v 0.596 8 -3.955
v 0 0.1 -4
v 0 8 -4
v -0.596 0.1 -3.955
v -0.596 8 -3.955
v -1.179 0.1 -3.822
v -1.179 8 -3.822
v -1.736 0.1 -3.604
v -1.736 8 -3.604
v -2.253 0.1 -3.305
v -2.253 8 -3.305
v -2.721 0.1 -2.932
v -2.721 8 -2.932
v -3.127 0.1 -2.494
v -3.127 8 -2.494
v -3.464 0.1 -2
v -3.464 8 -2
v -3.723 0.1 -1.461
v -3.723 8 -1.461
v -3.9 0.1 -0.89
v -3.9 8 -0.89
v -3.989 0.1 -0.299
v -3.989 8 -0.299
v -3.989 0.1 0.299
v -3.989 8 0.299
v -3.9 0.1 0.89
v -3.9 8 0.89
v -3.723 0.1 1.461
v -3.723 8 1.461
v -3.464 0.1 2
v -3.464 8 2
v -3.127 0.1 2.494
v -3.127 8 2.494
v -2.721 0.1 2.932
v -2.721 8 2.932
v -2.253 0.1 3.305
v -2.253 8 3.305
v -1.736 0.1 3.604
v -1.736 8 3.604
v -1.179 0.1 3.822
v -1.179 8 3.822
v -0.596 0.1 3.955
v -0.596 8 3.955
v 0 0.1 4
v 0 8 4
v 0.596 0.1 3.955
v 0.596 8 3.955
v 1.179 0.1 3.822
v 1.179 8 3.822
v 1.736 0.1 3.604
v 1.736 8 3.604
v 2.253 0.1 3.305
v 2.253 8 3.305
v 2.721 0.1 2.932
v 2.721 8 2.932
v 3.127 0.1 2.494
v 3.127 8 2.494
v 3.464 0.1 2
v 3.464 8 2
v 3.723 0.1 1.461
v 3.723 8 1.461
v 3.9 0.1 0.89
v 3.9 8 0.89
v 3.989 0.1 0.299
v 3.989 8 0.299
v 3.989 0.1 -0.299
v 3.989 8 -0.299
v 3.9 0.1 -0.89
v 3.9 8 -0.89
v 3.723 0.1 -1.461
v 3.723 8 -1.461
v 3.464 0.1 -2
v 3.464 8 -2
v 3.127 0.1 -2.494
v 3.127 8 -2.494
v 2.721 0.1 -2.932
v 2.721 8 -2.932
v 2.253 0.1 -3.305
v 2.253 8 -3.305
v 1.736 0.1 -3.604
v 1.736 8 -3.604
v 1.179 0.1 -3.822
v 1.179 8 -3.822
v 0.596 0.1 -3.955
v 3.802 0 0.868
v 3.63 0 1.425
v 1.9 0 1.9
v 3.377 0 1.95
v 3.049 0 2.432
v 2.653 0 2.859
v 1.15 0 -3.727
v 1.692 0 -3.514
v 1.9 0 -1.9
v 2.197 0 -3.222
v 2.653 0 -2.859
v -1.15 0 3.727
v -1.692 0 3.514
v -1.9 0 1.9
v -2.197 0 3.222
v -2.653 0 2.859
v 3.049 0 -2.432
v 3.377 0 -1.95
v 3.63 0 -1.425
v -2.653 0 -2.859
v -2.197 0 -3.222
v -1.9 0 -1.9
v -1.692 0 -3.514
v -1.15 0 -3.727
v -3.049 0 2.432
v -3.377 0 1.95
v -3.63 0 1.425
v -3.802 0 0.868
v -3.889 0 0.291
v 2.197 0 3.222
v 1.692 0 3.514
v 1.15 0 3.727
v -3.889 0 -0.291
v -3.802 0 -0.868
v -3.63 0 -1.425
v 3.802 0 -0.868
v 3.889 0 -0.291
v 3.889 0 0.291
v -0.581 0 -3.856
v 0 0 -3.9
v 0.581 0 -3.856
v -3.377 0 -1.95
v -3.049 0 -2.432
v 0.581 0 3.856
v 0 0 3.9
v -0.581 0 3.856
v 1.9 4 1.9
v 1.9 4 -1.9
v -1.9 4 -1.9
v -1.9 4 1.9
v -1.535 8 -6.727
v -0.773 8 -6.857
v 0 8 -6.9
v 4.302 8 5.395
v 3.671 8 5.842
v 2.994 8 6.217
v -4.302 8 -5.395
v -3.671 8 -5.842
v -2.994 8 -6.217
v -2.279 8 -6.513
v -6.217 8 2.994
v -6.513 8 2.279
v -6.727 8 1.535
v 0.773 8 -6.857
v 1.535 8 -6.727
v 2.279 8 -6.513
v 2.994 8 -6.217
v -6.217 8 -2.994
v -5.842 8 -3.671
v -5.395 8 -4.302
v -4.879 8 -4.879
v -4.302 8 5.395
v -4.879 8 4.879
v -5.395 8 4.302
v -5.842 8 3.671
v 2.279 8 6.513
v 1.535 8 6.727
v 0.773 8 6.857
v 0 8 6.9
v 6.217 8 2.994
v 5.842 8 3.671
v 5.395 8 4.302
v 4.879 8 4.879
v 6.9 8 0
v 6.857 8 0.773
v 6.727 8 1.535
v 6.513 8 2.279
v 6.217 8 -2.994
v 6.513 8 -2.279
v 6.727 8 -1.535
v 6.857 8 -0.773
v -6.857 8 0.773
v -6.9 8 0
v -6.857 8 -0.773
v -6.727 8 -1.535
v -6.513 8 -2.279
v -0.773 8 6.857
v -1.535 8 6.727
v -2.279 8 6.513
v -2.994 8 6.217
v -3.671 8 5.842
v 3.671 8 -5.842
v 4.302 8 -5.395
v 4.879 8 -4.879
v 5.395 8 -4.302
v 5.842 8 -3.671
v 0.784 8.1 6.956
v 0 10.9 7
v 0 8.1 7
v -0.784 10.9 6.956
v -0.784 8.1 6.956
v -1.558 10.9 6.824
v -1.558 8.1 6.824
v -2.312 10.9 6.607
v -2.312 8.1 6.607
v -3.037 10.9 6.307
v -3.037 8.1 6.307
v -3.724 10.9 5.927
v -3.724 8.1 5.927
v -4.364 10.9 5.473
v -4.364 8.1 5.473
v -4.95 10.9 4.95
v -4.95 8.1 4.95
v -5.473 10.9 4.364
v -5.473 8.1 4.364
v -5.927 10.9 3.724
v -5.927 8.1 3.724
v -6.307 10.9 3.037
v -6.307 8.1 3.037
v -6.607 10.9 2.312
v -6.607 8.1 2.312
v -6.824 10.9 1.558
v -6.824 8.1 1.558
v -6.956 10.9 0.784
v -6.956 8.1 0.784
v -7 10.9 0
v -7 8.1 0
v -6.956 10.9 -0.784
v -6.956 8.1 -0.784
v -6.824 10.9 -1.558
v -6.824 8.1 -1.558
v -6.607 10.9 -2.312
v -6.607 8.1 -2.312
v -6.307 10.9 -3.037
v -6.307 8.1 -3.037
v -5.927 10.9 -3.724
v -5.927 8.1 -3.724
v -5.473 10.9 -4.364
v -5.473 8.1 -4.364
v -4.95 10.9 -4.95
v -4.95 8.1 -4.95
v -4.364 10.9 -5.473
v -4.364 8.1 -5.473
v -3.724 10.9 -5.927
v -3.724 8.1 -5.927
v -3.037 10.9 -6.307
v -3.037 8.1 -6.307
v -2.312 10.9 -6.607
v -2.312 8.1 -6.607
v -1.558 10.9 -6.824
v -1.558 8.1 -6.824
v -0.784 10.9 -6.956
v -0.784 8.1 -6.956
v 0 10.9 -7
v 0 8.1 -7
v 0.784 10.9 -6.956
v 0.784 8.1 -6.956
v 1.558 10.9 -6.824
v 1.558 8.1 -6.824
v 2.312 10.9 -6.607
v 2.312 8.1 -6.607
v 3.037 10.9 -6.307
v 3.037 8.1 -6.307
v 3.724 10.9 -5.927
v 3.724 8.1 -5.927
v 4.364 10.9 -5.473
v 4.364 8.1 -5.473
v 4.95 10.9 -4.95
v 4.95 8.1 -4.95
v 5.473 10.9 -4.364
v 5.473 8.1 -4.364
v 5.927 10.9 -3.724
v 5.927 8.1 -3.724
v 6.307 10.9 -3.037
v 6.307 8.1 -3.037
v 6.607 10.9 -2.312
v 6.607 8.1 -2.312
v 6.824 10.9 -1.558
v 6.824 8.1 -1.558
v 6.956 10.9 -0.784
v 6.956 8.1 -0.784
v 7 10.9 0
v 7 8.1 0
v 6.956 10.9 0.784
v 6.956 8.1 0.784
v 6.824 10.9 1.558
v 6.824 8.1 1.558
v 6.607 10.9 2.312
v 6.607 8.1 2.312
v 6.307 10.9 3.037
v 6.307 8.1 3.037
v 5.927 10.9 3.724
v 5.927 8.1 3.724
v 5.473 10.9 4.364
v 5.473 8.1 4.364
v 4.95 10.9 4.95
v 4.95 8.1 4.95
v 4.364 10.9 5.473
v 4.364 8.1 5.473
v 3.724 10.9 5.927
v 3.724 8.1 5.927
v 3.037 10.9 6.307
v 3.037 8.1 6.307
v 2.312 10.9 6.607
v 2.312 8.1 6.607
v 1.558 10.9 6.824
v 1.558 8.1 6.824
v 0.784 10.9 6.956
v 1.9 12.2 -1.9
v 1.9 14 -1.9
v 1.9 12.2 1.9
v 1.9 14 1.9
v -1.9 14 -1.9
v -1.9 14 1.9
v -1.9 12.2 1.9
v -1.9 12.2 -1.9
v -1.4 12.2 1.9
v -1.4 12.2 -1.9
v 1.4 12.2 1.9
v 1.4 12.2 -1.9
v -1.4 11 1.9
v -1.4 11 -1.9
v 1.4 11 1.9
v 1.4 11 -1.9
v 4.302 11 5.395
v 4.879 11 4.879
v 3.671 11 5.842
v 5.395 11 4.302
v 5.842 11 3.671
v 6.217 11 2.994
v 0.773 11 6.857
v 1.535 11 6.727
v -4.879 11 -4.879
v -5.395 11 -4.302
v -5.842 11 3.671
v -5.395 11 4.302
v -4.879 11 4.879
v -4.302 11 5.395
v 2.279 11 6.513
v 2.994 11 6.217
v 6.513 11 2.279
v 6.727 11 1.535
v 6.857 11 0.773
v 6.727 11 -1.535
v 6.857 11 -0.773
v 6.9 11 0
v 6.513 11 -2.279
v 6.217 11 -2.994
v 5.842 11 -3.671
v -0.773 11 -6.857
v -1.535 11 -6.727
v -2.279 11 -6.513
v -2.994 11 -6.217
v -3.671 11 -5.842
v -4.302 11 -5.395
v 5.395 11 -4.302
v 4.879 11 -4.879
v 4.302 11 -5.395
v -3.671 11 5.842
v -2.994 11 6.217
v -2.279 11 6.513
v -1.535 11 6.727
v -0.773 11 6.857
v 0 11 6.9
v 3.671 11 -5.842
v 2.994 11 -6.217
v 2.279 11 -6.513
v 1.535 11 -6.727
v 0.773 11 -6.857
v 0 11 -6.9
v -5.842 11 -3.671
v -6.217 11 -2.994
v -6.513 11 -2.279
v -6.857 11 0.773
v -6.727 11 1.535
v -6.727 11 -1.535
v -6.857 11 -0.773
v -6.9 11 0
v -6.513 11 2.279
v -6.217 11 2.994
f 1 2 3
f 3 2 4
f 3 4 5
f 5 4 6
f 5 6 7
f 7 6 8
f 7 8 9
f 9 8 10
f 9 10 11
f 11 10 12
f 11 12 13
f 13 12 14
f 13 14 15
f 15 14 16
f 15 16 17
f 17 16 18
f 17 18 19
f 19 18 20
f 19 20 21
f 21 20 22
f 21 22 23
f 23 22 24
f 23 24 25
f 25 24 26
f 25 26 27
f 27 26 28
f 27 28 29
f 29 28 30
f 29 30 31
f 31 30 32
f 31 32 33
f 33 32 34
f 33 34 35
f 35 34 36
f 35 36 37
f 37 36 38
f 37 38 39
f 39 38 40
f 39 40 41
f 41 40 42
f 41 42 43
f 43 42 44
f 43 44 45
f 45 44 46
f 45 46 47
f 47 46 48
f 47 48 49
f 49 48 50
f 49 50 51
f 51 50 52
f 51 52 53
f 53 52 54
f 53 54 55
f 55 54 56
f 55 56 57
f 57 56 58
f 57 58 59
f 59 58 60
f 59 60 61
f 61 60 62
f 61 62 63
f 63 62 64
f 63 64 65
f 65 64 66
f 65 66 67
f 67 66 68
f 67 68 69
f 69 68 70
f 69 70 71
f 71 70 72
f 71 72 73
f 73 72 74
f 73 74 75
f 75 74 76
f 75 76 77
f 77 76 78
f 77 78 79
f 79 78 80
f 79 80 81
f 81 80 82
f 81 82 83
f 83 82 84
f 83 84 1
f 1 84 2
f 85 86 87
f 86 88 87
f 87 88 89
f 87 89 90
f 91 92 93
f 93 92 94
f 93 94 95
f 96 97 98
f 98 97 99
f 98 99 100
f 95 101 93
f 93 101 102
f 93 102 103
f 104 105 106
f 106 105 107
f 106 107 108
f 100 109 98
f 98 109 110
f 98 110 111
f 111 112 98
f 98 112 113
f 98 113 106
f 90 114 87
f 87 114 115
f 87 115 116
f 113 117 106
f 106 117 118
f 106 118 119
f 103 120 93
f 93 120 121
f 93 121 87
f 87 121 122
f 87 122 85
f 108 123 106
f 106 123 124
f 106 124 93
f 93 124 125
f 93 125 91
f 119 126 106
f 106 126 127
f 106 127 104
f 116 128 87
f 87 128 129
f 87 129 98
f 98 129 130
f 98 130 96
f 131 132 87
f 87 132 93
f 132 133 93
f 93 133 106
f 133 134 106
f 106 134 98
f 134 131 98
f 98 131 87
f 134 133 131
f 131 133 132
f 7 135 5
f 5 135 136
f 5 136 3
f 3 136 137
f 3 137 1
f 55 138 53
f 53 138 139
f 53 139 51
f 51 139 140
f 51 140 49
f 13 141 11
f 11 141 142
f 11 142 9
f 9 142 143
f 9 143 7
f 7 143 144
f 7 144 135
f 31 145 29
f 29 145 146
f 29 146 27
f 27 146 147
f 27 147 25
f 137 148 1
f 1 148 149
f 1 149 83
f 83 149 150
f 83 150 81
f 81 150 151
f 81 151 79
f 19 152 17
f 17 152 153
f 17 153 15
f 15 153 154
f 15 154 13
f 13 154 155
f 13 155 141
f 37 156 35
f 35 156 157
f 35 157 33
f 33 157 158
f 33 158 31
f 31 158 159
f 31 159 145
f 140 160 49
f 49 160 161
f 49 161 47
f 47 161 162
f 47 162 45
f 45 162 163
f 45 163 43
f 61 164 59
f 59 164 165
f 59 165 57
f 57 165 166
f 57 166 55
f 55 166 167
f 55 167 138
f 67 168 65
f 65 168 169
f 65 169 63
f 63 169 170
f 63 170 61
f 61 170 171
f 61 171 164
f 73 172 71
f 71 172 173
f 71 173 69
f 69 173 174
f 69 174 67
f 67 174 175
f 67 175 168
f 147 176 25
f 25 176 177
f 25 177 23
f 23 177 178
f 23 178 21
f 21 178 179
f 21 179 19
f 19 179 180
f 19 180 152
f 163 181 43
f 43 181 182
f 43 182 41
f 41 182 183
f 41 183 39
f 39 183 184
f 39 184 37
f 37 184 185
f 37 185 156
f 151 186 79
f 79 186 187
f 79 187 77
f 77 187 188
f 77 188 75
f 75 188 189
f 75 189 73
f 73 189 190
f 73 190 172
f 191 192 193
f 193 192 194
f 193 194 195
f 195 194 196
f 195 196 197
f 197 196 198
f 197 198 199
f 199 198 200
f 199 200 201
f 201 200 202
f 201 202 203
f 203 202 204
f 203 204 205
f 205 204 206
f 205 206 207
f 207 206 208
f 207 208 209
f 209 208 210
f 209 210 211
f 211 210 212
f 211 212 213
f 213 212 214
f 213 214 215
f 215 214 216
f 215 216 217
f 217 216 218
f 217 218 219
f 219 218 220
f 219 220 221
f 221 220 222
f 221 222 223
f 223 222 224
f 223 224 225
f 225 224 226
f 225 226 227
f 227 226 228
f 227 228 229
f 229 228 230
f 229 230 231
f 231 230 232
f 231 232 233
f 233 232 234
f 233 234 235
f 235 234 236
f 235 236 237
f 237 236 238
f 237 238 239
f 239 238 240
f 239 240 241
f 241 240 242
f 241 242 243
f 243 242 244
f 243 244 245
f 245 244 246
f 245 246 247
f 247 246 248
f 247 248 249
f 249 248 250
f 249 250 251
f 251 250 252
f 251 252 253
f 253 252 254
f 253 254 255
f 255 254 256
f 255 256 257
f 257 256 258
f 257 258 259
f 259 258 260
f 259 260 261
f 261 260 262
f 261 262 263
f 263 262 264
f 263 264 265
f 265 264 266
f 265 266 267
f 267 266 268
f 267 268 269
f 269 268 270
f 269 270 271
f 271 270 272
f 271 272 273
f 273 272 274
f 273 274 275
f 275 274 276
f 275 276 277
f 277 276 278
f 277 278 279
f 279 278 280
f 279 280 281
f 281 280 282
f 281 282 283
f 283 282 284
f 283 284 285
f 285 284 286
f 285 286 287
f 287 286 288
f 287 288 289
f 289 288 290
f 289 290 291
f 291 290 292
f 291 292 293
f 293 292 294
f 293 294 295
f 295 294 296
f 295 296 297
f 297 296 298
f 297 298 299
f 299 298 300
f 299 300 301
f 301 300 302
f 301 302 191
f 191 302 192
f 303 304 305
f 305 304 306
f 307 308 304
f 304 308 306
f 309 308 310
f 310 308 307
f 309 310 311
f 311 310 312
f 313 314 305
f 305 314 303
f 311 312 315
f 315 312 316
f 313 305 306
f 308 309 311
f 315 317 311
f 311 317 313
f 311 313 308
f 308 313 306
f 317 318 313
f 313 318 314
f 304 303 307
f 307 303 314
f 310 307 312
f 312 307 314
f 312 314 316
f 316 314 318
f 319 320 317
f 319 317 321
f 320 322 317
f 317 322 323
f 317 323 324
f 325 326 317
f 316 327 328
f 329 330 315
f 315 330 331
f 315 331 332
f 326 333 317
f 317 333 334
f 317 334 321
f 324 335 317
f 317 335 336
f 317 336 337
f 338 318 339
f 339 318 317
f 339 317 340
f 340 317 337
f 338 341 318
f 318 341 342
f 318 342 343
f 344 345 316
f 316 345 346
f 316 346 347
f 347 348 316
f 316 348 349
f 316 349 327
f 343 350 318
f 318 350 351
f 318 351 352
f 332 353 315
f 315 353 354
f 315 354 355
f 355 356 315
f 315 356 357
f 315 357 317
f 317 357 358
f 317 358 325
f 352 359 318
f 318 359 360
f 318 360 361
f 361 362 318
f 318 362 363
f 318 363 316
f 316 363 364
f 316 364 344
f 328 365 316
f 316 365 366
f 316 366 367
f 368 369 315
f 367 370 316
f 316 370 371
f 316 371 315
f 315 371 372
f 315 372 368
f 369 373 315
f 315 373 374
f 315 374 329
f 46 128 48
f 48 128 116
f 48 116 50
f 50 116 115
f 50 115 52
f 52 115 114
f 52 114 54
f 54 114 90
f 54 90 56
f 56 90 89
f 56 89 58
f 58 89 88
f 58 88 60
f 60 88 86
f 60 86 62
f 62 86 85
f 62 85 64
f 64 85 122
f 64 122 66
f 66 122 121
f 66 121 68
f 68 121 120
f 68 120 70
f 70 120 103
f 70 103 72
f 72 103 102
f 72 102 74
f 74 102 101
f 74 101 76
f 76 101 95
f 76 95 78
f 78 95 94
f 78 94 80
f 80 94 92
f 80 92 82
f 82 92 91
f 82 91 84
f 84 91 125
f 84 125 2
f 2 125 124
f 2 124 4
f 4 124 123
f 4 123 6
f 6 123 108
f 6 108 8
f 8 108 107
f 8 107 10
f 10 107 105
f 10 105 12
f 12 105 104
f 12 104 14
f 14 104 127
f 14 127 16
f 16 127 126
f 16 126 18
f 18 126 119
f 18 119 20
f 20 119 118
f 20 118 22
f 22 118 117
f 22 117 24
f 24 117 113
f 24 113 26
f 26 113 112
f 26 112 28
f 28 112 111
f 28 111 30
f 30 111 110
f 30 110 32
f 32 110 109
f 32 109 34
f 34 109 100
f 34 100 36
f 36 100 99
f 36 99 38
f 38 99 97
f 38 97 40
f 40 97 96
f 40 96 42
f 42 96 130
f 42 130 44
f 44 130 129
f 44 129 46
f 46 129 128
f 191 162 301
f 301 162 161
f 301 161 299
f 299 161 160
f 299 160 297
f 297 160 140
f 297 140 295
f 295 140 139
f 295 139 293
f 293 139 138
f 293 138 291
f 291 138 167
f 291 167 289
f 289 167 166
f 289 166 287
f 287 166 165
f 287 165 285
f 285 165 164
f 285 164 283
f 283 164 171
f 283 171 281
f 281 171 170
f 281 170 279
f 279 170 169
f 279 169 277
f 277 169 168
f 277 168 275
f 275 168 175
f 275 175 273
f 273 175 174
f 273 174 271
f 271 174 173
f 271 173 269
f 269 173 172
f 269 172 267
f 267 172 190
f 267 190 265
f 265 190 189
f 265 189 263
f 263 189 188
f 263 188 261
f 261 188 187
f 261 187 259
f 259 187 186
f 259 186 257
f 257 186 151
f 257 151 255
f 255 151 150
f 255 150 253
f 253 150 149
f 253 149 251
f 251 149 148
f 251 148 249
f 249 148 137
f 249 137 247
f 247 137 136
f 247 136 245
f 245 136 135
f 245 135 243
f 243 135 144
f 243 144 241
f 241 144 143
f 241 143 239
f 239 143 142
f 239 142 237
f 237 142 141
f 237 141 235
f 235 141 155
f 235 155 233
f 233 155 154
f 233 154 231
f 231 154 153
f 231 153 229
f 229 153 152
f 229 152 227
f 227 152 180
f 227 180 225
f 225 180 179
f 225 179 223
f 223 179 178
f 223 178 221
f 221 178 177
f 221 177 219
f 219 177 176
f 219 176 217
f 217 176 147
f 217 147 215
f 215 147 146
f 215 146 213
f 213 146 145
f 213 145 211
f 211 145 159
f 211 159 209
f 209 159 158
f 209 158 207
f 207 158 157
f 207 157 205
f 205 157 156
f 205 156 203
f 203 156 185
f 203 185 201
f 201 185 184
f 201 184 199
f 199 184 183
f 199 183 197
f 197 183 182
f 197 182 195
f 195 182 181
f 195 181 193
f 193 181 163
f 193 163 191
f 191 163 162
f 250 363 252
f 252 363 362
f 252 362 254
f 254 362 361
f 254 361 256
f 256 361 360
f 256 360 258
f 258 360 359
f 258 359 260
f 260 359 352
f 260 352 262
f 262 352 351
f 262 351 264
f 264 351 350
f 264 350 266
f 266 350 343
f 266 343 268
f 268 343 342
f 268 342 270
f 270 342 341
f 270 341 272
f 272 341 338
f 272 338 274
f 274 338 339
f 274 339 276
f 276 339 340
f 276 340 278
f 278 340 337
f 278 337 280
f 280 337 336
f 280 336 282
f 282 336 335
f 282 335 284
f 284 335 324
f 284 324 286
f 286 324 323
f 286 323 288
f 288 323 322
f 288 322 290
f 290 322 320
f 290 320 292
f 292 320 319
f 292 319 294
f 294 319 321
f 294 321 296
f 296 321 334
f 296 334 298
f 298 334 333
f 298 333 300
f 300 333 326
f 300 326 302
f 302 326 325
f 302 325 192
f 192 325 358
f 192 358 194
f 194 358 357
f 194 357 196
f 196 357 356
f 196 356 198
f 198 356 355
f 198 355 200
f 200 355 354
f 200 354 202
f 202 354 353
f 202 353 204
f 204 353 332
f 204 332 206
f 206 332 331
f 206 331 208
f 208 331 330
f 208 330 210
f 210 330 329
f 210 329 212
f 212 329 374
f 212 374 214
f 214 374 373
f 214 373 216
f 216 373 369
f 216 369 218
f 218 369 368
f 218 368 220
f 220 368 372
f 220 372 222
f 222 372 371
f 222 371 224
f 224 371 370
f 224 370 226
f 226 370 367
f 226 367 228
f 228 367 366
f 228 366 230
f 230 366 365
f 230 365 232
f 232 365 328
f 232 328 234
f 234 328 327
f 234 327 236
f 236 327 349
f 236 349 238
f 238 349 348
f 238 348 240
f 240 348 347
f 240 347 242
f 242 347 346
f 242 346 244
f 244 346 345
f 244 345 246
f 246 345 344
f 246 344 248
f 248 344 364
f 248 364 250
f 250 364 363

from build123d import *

# Parameters (mm, degrees)
SKETCH1_R           = 4
BOSS_EXTRUDE1_DEPTH = 11
SKETCH2_W           = 3.8
SKETCH2_H           = 3.8
CUT_EXTRUDE1_DEPTH  = 4
SKETCH3_W           = 3.8
SKETCH3_H           = 3.8
BOSS_EXTRUDE2_DEPTH = 3
SKETCH4_W           = 0.5
SKETCH4_H           = 1.2
CUT_EXTRUDE2_DEPTH  = 13
SKETCH5_R           = 7
BOSS_EXTRUDE3_DEPTH = 3
CHAMFER1_SIZE       = 0.1


with BuildPart() as part:
    # Sketch1 → Boss-Extrude1 (new body)
    with BuildSketch(Plane(origin=(0, 0, 0), x_dir=(1, 0, 0), z_dir=(0, 1, 0))):
        Circle(SKETCH1_R)
    extrude(amount=BOSS_EXTRUDE1_DEPTH)

    # Sketch2 → Cut-Extrude1 (cut)
    with BuildSketch(Plane.XZ):
        Rectangle(SKETCH2_W, SKETCH2_H)
    extrude(amount=-CUT_EXTRUDE1_DEPTH, mode=Mode.SUBTRACT)

    # Sketch3 → Boss-Extrude2 (add)
    with BuildSketch(Plane(origin=(0, 11, 0), x_dir=(1, 0, 0), z_dir=(0, 1, 0))):
        Rectangle(SKETCH3_W, SKETCH3_H)
    extrude(amount=BOSS_EXTRUDE2_DEPTH)

    # Sketch4 → Cut-Extrude2 (cut)
    with BuildSketch(Plane.XY.offset(1.9)):
        with Locations((-1.65, 11.6)):
            Rectangle(SKETCH4_W, SKETCH4_H)
        with Locations((1.65, 11.6)):
            Rectangle(SKETCH4_W, SKETCH4_H)
    extrude(amount=-CUT_EXTRUDE2_DEPTH, mode=Mode.SUBTRACT)

    # Sketch5 → Boss-Extrude3 (add)
    with BuildSketch(Plane(origin=(0, 11, 0), x_dir=(1, 0, 0), z_dir=(0, 1, 0))):
        Circle(SKETCH5_R)
    extrude(amount=-BOSS_EXTRUDE3_DEPTH)

    # Chamfer1
    chamfer1_edges = [part.edges().sort_by_distance(p)[0] for p in [
        (-4, 0, 0),
        (-7, 11, 0),
        (-7, 8, 0),
    ]]
    chamfer(chamfer1_edges, length=CHAMFER1_SIZE)


solid = part.part
